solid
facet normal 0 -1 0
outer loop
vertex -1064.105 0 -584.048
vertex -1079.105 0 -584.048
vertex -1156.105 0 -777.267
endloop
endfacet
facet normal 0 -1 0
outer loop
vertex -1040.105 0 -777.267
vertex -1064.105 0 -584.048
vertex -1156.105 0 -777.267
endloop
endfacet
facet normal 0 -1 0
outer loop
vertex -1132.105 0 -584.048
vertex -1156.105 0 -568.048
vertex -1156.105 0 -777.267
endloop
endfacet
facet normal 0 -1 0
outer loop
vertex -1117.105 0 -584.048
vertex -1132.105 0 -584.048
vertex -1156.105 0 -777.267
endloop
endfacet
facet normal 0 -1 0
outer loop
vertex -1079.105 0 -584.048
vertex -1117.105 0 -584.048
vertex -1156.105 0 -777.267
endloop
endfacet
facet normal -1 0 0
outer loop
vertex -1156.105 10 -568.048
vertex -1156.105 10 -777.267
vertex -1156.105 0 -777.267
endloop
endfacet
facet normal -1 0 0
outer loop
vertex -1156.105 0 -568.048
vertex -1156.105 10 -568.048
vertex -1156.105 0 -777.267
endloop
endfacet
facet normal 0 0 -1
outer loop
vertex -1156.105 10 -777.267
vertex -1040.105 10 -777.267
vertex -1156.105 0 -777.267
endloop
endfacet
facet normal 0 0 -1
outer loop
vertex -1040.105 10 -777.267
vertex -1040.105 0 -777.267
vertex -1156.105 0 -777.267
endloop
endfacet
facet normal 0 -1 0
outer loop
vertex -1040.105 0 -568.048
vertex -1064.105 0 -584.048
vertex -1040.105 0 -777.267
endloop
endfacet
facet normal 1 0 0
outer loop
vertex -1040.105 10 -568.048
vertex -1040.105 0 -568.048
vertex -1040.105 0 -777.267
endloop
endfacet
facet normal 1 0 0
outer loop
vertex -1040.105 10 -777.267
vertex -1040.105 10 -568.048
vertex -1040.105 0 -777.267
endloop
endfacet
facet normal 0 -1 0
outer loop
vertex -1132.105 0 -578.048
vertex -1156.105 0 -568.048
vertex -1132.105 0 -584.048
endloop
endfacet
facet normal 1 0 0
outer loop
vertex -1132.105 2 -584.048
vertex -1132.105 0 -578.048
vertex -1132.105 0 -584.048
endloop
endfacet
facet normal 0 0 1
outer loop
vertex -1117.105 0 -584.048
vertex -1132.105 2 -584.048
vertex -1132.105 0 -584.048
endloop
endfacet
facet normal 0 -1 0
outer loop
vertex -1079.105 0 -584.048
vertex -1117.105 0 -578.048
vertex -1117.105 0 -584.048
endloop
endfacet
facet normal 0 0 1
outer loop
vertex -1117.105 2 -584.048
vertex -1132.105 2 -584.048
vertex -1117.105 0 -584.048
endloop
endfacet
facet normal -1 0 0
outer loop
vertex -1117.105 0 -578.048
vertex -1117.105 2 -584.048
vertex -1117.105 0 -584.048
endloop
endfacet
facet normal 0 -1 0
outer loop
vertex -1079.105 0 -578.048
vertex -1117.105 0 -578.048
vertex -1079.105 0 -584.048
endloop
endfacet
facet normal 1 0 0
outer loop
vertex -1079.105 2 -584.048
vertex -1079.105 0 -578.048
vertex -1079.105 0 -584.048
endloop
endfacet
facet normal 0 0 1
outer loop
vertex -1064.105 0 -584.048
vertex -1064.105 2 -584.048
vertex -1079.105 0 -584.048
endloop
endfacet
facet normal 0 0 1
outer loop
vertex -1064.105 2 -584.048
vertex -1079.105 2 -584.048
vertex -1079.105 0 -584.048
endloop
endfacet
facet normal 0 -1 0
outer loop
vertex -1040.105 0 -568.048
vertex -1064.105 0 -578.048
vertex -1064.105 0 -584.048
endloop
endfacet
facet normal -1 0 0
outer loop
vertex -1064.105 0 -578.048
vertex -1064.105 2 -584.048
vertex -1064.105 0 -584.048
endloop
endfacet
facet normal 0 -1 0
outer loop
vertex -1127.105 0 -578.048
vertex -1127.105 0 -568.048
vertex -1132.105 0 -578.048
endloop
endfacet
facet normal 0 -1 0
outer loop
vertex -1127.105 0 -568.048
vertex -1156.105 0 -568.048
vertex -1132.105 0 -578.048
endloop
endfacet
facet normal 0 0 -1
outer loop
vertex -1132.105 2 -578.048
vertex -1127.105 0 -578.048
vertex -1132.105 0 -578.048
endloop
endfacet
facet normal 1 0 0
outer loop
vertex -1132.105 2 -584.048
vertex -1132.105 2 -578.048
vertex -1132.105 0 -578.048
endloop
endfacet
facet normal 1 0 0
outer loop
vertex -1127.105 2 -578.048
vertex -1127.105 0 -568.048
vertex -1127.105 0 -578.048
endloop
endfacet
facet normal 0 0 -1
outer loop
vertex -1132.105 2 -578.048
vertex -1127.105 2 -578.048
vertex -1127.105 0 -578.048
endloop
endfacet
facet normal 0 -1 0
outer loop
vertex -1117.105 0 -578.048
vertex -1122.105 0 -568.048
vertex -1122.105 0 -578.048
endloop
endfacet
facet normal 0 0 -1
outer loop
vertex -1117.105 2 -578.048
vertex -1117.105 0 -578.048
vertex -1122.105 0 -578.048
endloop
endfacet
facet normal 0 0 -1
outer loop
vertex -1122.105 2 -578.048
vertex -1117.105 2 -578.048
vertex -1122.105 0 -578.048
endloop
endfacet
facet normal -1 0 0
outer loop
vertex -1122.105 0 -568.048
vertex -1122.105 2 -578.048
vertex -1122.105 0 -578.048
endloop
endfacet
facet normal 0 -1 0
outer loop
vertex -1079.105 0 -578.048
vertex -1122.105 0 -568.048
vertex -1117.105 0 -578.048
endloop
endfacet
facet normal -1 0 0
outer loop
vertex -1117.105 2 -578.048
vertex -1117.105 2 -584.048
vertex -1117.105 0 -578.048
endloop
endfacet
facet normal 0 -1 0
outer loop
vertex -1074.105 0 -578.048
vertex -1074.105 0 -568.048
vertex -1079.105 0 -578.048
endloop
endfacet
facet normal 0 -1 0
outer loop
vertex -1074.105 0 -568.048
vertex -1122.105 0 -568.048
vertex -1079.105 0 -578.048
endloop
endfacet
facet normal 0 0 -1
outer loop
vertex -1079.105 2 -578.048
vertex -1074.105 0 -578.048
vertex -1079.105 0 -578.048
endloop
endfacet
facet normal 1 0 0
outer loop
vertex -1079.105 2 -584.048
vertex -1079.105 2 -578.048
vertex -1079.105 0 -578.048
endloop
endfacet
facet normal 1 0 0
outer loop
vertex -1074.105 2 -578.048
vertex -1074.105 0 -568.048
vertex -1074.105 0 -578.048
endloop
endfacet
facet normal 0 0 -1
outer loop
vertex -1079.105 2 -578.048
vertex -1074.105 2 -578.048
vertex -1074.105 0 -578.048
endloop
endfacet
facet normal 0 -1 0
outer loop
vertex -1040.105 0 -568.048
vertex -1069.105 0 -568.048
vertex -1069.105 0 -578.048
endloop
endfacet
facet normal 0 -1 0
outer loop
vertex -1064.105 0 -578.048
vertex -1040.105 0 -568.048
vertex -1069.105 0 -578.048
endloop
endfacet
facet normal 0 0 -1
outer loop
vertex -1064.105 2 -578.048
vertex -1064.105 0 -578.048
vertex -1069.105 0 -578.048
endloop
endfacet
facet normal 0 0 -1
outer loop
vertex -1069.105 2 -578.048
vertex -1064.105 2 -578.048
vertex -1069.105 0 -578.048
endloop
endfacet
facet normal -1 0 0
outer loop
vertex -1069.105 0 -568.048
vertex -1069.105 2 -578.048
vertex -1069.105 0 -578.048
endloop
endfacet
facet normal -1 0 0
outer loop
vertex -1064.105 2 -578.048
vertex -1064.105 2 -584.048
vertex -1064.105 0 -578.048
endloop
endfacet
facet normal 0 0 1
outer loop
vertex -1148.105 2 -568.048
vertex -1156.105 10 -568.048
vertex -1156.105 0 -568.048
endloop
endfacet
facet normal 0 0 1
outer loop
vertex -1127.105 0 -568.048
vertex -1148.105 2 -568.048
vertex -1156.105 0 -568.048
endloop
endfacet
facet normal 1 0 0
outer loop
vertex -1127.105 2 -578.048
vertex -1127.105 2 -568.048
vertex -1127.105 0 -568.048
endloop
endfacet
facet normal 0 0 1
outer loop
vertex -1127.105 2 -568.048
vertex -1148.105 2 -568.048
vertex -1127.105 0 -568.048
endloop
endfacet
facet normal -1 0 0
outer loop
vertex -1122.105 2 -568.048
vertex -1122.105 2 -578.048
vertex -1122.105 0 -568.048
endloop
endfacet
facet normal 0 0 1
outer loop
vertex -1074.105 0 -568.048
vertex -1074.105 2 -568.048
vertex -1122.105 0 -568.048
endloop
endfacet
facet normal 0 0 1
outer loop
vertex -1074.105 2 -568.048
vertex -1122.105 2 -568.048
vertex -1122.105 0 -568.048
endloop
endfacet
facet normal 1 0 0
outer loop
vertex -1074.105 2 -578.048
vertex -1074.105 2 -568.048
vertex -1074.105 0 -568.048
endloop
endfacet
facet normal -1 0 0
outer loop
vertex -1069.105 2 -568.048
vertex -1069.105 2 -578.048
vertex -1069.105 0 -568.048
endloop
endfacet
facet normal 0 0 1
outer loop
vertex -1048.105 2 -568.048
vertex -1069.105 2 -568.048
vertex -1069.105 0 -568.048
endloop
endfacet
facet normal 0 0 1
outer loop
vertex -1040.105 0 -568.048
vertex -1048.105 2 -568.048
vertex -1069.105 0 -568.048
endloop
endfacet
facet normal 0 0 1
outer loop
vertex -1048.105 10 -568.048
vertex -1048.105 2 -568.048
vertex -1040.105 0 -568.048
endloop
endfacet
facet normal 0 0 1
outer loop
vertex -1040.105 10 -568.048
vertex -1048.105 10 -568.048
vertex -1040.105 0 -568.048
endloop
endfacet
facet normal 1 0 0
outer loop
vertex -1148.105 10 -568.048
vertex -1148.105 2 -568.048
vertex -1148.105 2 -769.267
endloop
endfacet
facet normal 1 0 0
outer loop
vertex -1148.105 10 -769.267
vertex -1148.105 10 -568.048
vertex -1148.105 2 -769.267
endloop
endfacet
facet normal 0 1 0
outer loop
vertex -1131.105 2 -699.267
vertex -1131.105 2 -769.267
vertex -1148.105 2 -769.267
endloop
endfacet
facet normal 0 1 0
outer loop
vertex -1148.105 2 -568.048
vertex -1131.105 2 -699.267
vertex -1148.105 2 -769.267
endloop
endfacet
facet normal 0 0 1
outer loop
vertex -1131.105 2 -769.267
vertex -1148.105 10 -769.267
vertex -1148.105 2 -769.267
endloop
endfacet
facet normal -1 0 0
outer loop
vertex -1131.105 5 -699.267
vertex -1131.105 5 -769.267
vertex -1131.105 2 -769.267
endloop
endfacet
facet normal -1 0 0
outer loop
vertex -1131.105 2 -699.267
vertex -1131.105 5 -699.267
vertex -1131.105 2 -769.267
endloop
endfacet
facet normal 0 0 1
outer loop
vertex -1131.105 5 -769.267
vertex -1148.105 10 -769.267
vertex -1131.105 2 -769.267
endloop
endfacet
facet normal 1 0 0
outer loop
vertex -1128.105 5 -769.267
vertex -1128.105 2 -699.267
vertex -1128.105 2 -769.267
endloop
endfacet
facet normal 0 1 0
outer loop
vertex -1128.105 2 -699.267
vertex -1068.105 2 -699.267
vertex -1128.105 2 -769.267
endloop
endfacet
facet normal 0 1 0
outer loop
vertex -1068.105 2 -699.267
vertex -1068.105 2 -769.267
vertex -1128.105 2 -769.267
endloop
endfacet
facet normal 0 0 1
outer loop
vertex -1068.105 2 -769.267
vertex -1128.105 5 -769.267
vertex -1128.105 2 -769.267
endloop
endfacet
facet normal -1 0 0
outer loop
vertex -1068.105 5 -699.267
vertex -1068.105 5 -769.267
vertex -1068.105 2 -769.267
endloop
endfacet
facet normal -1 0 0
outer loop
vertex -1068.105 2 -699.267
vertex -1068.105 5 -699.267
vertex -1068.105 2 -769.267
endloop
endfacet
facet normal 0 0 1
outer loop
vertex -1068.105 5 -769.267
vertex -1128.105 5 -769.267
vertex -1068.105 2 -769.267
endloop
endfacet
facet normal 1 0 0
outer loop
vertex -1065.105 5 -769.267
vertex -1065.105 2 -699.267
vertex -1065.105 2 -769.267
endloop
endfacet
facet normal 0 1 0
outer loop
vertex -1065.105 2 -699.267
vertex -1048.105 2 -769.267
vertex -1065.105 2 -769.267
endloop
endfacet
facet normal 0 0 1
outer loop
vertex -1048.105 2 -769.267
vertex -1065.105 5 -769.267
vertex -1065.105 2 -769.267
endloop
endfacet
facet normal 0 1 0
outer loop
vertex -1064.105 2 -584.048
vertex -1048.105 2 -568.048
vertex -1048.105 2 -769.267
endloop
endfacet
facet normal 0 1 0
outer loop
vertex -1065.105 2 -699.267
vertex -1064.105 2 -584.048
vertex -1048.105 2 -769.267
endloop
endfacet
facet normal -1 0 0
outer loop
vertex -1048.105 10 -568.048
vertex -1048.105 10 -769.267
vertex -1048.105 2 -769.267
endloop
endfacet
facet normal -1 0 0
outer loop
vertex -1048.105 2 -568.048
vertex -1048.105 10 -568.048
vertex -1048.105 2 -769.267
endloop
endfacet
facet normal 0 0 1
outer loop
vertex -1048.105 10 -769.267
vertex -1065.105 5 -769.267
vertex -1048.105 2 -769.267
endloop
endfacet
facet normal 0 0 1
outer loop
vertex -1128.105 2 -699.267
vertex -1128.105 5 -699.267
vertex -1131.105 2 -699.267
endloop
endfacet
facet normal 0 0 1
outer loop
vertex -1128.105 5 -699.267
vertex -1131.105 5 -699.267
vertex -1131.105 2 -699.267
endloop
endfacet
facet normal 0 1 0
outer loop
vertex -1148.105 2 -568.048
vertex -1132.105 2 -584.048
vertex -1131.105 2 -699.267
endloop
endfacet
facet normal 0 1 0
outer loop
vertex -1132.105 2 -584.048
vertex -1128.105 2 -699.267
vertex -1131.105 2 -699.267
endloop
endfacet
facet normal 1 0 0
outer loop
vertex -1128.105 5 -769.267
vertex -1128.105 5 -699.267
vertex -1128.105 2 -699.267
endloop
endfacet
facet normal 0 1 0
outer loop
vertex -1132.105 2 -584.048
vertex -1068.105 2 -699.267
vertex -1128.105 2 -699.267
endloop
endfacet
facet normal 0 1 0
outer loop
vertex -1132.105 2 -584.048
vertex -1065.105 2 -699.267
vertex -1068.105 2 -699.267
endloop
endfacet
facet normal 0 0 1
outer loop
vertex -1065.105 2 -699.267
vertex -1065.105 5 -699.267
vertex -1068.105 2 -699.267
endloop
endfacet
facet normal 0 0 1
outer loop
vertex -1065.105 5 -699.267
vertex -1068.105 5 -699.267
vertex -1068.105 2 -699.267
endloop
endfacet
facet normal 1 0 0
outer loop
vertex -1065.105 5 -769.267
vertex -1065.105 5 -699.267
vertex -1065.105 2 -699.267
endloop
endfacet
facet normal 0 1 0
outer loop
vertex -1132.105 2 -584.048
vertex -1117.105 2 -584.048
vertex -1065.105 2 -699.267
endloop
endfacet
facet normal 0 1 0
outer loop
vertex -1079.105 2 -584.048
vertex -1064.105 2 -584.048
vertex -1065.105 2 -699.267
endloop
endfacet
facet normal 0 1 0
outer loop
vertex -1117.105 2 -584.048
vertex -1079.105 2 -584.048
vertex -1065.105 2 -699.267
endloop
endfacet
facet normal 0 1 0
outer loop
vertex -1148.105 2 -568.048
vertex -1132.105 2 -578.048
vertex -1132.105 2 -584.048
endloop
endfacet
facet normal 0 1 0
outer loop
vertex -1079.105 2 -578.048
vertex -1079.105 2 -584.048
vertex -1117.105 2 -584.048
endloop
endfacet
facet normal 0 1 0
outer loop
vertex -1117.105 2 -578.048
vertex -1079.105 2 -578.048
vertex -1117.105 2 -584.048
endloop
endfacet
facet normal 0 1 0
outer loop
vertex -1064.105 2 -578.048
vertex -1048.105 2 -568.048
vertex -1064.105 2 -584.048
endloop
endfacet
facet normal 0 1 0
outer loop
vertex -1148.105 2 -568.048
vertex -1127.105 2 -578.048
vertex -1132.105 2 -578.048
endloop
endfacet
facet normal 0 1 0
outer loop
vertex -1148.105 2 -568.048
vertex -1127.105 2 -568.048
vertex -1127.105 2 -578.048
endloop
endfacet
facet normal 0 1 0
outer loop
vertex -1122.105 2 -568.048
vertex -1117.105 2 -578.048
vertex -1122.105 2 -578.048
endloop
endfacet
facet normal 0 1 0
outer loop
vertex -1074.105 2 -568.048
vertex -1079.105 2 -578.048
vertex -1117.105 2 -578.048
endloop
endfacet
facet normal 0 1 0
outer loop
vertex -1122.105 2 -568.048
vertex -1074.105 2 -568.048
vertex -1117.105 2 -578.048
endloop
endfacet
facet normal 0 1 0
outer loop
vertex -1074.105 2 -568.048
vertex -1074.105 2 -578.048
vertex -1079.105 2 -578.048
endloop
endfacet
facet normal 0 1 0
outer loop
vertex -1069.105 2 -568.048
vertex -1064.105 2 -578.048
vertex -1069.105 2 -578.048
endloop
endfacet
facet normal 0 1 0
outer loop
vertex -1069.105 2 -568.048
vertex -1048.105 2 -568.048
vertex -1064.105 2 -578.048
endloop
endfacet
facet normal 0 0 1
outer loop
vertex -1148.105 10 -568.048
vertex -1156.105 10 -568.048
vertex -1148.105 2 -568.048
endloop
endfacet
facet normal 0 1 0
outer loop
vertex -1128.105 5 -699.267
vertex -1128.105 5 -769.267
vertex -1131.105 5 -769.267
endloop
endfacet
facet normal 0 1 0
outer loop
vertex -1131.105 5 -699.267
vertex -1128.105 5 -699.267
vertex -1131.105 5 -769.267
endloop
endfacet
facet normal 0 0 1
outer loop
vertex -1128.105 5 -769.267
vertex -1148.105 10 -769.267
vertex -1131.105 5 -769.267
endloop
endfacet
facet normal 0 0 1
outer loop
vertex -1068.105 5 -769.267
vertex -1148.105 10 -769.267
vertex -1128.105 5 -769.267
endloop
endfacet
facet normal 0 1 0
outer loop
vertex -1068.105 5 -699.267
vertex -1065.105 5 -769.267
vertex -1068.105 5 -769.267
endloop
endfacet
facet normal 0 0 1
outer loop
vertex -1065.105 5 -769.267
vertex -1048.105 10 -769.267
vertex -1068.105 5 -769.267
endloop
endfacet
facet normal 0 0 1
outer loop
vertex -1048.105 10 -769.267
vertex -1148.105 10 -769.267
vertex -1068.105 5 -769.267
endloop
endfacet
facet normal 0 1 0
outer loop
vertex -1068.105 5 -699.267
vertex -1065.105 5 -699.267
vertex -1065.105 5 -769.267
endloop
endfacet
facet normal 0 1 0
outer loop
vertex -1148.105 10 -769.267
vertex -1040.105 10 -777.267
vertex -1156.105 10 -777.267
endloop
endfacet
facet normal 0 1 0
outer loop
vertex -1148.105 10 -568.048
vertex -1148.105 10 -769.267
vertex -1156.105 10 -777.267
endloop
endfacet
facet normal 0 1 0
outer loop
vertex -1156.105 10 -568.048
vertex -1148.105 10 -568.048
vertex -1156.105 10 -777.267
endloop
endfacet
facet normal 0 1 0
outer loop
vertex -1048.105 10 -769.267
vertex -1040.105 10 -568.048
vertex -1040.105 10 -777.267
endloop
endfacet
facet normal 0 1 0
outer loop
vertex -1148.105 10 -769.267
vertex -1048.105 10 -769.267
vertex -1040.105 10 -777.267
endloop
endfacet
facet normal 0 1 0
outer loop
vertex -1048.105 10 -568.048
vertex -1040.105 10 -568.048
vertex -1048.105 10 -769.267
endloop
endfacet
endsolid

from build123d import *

# Parameters (mm, degrees)
SKETCH3_W               = 116
SKETCH3_H               = 416
BOSS_EXTRUDE1_DEPTH     = 10
SKETCH4_W               = 100
SKETCH4_H               = 400
CUT_EXTRUDE1_DEPTH      = 8
SKETCH6_W               = 3
SKETCH6_H               = 100
BOSS_EXTRUDE4_DEPTH     = 3
SKETCH7_R               = 1.5
BOSS_EXTRUDE5_DEPTH     = 3
CUT_EXTRUDE2_DEPTH      = 10
CUT_EXTRUDE2_DEPTH_BACK = 10
SKETCH8_W               = 116
SKETCH8_H               = 176.78031556
CUT_EXTRUDE4_DEPTH      = 37
CUT_EXTRUDE5_DEPTH      = 10
SKETCH11_W              = 8
SKETCH11_H              = 30
CUT_EXTRUDE6_DEPTH      = 10
SKETCH12_W              = 3
SKETCH12_H              = 30
CUT_EXTRUDE7_DEPTH      = 10
SKETCH13_W              = 3
SKETCH13_H              = 30
CUT_EXTRUDE10_DEPTH     = 14
SKETCH14_W              = 3
SKETCH14_H              = 30
BOSS_EXTRUDE8_DEPTH     = 2


with BuildPart() as part:
    # Sketch3 → Boss-Extrude1 (new body)
    with BuildSketch(Plane(origin=(0, 0, 0), x_dir=(1, 0, 0), z_dir=(0, 1, 0))):
        with Locations((-1098.104867157, 569.267379684)):
            Rectangle(SKETCH3_W, SKETCH3_H)
    extrude(amount=BOSS_EXTRUDE1_DEPTH)

    # Sketch4 → Cut-Extrude1 (cut)
    with BuildSketch(Plane(origin=(0, 10, 0), x_dir=(1, 0, 0), z_dir=(0, 1, 0))):
        with Locations((-1098.104867157, 569.267379684)):
            Rectangle(SKETCH4_W, SKETCH4_H)
    extrude(amount=-CUT_EXTRUDE1_DEPTH, mode=Mode.SUBTRACT)

    # Sketch6 → Boss-Extrude4 (add)
    with BuildSketch(Plane(origin=(0, 2, 0), x_dir=(1, 0, 0), z_dir=(0, 1, 0))):
        with Locations((-1129.604867157, 719.267379684)):
            Rectangle(SKETCH6_W, SKETCH6_H)
        with Locations((-1066.604867157, 719.267379684)):
            Rectangle(SKETCH6_W, SKETCH6_H)
    extrude(amount=BOSS_EXTRUDE4_DEPTH)

    # Sketch7 → Boss-Extrude5 (add)
    with BuildSketch(Plane(origin=(0, 2, 0), x_dir=(1, 0, 0), z_dir=(0, 1, 0))):
        with Locations(Location((-1085.404867157, 452.168271652, 0), (0, 0, 270))):
            Circle(SKETCH7_R)
    extrude(amount=BOSS_EXTRUDE5_DEPTH)

    # Sketch8 → Cut-Extrude2 (cut, two sides: drawn at the far end of the back side and taken through both)
    with BuildSketch(Plane(origin=(0, 2, 0), x_dir=(1, 0, 0), z_dir=(0, 1, 0)).offset(-CUT_EXTRUDE2_DEPTH_BACK)):
        with Locations((-1098.104867157, 449.657537464)):
            Rectangle(SKETCH8_W, SKETCH8_H)
    extrude(amount=CUT_EXTRUDE2_DEPTH + CUT_EXTRUDE2_DEPTH_BACK, mode=Mode.SUBTRACT)

    # Sketch9 → Cut-Extrude4 (cut)
    with BuildSketch(Plane(origin=(0, 2, 0), x_dir=(1, 0, 0), z_dir=(0, 1, 0))):
        Polygon((-1127.104867157, 548.047695244), (-1127.104867157, 538.047695244), (-1122.104867157, 538.047695244), (-1122.104867157, 548.047695244), (-1117.104867157, 548.047695244), (-1117.104867157, 554.047695244), (-1132.104867157, 554.047695244), (-1132.104867157, 548.047695244), align=None)
        Polygon((-1074.104867157, 548.047695244), (-1074.104867157, 538.047695244), (-1069.104867157, 538.047695244), (-1069.104867157, 548.047695244), (-1064.104867157, 548.047695244), (-1064.104867157, 554.047695244), (-1079.104867157, 554.047695244), (-1079.104867157, 548.047695244), align=None)
    extrude(amount=-CUT_EXTRUDE4_DEPTH, mode=Mode.SUBTRACT)

    # Sketch10 → Cut-Extrude5 (cut)
    with BuildSketch(Plane(origin=(0, 5, 0), x_dir=(1, 0, 0), z_dir=(0, 1, 0))):
        Polygon((-1127.104867157, 578.047695244), (-1127.104867157, 568.047695244), (-1122.104867157, 568.047695244), (-1122.104867157, 578.047695244), (-1117.104867157, 578.047695244), (-1117.104867157, 584.047695244), (-1132.104867157, 584.047695244), (-1132.104867157, 578.047695244), align=None)
        Polygon((-1156.104867157, 568.047695244), (-1156.104867157, 538.047695244), (-1040.104867157, 538.047695244), (-1040.104867157, 568.047695244), (-1069.104867157, 568.047695244), (-1074.104867157, 568.047695244), (-1122.104867157, 568.047695244), (-1127.104867157, 568.047695244), align=None)
        Polygon((-1069.104867157, 568.047695244), (-1074.104867157, 568.047695244), (-1074.104867157, 578.047695244), (-1079.104867157, 578.047695244), (-1079.104867157, 584.047695244), (-1064.104867157, 584.047695244), (-1064.104867157, 578.047695244), (-1069.104867157, 578.047695244), align=None)
    extrude(amount=-CUT_EXTRUDE5_DEPTH, mode=Mode.SUBTRACT)

    # Sketch11 → Cut-Extrude6 (cut)
    with BuildSketch(Plane(origin=(0, 0, 0), x_dir=(1, 0, 0), z_dir=(0, 1, 0))):
        with Locations((-1152.104867157, 553.047695244)):
            Rectangle(SKETCH11_W, SKETCH11_H)
        with Locations((-1044.104867157, 553.047695244)):
            Rectangle(SKETCH11_W, SKETCH11_H)
    extrude(amount=CUT_EXTRUDE6_DEPTH, mode=Mode.SUBTRACT)

    # Sketch12 → Cut-Extrude7 (cut)
    with BuildSketch(Plane(origin=(0, 2, 0), x_dir=(1, 0, 0), z_dir=(0, 1, 0))):
        with Locations((-1066.604867157, 684.267379684)):
            Rectangle(SKETCH12_W, SKETCH12_H)
    extrude(amount=CUT_EXTRUDE7_DEPTH, mode=Mode.SUBTRACT)

    # Sketch13 → Cut-Extrude10 (cut)
    with BuildSketch(Plane(origin=(0, 0, 0), x_dir=(1, 0, 0), z_dir=(0, 1, 0))):
        with Locations((-1129.604867157, 684.267379684)):
            Rectangle(SKETCH13_W, SKETCH13_H)
    extrude(amount=CUT_EXTRUDE10_DEPTH, mode=Mode.SUBTRACT)

    # Sketch14 → Boss-Extrude8 (add)
    with BuildSketch(Plane(origin=(0, 0, 0), x_dir=(1, 0, 0), z_dir=(0, 1, 0))):
        with Locations((-1129.604867157, 684.267379684)):
            Rectangle(SKETCH14_W, SKETCH14_H)
    extrude(amount=BOSS_EXTRUDE8_DEPTH)


solid = part.part
